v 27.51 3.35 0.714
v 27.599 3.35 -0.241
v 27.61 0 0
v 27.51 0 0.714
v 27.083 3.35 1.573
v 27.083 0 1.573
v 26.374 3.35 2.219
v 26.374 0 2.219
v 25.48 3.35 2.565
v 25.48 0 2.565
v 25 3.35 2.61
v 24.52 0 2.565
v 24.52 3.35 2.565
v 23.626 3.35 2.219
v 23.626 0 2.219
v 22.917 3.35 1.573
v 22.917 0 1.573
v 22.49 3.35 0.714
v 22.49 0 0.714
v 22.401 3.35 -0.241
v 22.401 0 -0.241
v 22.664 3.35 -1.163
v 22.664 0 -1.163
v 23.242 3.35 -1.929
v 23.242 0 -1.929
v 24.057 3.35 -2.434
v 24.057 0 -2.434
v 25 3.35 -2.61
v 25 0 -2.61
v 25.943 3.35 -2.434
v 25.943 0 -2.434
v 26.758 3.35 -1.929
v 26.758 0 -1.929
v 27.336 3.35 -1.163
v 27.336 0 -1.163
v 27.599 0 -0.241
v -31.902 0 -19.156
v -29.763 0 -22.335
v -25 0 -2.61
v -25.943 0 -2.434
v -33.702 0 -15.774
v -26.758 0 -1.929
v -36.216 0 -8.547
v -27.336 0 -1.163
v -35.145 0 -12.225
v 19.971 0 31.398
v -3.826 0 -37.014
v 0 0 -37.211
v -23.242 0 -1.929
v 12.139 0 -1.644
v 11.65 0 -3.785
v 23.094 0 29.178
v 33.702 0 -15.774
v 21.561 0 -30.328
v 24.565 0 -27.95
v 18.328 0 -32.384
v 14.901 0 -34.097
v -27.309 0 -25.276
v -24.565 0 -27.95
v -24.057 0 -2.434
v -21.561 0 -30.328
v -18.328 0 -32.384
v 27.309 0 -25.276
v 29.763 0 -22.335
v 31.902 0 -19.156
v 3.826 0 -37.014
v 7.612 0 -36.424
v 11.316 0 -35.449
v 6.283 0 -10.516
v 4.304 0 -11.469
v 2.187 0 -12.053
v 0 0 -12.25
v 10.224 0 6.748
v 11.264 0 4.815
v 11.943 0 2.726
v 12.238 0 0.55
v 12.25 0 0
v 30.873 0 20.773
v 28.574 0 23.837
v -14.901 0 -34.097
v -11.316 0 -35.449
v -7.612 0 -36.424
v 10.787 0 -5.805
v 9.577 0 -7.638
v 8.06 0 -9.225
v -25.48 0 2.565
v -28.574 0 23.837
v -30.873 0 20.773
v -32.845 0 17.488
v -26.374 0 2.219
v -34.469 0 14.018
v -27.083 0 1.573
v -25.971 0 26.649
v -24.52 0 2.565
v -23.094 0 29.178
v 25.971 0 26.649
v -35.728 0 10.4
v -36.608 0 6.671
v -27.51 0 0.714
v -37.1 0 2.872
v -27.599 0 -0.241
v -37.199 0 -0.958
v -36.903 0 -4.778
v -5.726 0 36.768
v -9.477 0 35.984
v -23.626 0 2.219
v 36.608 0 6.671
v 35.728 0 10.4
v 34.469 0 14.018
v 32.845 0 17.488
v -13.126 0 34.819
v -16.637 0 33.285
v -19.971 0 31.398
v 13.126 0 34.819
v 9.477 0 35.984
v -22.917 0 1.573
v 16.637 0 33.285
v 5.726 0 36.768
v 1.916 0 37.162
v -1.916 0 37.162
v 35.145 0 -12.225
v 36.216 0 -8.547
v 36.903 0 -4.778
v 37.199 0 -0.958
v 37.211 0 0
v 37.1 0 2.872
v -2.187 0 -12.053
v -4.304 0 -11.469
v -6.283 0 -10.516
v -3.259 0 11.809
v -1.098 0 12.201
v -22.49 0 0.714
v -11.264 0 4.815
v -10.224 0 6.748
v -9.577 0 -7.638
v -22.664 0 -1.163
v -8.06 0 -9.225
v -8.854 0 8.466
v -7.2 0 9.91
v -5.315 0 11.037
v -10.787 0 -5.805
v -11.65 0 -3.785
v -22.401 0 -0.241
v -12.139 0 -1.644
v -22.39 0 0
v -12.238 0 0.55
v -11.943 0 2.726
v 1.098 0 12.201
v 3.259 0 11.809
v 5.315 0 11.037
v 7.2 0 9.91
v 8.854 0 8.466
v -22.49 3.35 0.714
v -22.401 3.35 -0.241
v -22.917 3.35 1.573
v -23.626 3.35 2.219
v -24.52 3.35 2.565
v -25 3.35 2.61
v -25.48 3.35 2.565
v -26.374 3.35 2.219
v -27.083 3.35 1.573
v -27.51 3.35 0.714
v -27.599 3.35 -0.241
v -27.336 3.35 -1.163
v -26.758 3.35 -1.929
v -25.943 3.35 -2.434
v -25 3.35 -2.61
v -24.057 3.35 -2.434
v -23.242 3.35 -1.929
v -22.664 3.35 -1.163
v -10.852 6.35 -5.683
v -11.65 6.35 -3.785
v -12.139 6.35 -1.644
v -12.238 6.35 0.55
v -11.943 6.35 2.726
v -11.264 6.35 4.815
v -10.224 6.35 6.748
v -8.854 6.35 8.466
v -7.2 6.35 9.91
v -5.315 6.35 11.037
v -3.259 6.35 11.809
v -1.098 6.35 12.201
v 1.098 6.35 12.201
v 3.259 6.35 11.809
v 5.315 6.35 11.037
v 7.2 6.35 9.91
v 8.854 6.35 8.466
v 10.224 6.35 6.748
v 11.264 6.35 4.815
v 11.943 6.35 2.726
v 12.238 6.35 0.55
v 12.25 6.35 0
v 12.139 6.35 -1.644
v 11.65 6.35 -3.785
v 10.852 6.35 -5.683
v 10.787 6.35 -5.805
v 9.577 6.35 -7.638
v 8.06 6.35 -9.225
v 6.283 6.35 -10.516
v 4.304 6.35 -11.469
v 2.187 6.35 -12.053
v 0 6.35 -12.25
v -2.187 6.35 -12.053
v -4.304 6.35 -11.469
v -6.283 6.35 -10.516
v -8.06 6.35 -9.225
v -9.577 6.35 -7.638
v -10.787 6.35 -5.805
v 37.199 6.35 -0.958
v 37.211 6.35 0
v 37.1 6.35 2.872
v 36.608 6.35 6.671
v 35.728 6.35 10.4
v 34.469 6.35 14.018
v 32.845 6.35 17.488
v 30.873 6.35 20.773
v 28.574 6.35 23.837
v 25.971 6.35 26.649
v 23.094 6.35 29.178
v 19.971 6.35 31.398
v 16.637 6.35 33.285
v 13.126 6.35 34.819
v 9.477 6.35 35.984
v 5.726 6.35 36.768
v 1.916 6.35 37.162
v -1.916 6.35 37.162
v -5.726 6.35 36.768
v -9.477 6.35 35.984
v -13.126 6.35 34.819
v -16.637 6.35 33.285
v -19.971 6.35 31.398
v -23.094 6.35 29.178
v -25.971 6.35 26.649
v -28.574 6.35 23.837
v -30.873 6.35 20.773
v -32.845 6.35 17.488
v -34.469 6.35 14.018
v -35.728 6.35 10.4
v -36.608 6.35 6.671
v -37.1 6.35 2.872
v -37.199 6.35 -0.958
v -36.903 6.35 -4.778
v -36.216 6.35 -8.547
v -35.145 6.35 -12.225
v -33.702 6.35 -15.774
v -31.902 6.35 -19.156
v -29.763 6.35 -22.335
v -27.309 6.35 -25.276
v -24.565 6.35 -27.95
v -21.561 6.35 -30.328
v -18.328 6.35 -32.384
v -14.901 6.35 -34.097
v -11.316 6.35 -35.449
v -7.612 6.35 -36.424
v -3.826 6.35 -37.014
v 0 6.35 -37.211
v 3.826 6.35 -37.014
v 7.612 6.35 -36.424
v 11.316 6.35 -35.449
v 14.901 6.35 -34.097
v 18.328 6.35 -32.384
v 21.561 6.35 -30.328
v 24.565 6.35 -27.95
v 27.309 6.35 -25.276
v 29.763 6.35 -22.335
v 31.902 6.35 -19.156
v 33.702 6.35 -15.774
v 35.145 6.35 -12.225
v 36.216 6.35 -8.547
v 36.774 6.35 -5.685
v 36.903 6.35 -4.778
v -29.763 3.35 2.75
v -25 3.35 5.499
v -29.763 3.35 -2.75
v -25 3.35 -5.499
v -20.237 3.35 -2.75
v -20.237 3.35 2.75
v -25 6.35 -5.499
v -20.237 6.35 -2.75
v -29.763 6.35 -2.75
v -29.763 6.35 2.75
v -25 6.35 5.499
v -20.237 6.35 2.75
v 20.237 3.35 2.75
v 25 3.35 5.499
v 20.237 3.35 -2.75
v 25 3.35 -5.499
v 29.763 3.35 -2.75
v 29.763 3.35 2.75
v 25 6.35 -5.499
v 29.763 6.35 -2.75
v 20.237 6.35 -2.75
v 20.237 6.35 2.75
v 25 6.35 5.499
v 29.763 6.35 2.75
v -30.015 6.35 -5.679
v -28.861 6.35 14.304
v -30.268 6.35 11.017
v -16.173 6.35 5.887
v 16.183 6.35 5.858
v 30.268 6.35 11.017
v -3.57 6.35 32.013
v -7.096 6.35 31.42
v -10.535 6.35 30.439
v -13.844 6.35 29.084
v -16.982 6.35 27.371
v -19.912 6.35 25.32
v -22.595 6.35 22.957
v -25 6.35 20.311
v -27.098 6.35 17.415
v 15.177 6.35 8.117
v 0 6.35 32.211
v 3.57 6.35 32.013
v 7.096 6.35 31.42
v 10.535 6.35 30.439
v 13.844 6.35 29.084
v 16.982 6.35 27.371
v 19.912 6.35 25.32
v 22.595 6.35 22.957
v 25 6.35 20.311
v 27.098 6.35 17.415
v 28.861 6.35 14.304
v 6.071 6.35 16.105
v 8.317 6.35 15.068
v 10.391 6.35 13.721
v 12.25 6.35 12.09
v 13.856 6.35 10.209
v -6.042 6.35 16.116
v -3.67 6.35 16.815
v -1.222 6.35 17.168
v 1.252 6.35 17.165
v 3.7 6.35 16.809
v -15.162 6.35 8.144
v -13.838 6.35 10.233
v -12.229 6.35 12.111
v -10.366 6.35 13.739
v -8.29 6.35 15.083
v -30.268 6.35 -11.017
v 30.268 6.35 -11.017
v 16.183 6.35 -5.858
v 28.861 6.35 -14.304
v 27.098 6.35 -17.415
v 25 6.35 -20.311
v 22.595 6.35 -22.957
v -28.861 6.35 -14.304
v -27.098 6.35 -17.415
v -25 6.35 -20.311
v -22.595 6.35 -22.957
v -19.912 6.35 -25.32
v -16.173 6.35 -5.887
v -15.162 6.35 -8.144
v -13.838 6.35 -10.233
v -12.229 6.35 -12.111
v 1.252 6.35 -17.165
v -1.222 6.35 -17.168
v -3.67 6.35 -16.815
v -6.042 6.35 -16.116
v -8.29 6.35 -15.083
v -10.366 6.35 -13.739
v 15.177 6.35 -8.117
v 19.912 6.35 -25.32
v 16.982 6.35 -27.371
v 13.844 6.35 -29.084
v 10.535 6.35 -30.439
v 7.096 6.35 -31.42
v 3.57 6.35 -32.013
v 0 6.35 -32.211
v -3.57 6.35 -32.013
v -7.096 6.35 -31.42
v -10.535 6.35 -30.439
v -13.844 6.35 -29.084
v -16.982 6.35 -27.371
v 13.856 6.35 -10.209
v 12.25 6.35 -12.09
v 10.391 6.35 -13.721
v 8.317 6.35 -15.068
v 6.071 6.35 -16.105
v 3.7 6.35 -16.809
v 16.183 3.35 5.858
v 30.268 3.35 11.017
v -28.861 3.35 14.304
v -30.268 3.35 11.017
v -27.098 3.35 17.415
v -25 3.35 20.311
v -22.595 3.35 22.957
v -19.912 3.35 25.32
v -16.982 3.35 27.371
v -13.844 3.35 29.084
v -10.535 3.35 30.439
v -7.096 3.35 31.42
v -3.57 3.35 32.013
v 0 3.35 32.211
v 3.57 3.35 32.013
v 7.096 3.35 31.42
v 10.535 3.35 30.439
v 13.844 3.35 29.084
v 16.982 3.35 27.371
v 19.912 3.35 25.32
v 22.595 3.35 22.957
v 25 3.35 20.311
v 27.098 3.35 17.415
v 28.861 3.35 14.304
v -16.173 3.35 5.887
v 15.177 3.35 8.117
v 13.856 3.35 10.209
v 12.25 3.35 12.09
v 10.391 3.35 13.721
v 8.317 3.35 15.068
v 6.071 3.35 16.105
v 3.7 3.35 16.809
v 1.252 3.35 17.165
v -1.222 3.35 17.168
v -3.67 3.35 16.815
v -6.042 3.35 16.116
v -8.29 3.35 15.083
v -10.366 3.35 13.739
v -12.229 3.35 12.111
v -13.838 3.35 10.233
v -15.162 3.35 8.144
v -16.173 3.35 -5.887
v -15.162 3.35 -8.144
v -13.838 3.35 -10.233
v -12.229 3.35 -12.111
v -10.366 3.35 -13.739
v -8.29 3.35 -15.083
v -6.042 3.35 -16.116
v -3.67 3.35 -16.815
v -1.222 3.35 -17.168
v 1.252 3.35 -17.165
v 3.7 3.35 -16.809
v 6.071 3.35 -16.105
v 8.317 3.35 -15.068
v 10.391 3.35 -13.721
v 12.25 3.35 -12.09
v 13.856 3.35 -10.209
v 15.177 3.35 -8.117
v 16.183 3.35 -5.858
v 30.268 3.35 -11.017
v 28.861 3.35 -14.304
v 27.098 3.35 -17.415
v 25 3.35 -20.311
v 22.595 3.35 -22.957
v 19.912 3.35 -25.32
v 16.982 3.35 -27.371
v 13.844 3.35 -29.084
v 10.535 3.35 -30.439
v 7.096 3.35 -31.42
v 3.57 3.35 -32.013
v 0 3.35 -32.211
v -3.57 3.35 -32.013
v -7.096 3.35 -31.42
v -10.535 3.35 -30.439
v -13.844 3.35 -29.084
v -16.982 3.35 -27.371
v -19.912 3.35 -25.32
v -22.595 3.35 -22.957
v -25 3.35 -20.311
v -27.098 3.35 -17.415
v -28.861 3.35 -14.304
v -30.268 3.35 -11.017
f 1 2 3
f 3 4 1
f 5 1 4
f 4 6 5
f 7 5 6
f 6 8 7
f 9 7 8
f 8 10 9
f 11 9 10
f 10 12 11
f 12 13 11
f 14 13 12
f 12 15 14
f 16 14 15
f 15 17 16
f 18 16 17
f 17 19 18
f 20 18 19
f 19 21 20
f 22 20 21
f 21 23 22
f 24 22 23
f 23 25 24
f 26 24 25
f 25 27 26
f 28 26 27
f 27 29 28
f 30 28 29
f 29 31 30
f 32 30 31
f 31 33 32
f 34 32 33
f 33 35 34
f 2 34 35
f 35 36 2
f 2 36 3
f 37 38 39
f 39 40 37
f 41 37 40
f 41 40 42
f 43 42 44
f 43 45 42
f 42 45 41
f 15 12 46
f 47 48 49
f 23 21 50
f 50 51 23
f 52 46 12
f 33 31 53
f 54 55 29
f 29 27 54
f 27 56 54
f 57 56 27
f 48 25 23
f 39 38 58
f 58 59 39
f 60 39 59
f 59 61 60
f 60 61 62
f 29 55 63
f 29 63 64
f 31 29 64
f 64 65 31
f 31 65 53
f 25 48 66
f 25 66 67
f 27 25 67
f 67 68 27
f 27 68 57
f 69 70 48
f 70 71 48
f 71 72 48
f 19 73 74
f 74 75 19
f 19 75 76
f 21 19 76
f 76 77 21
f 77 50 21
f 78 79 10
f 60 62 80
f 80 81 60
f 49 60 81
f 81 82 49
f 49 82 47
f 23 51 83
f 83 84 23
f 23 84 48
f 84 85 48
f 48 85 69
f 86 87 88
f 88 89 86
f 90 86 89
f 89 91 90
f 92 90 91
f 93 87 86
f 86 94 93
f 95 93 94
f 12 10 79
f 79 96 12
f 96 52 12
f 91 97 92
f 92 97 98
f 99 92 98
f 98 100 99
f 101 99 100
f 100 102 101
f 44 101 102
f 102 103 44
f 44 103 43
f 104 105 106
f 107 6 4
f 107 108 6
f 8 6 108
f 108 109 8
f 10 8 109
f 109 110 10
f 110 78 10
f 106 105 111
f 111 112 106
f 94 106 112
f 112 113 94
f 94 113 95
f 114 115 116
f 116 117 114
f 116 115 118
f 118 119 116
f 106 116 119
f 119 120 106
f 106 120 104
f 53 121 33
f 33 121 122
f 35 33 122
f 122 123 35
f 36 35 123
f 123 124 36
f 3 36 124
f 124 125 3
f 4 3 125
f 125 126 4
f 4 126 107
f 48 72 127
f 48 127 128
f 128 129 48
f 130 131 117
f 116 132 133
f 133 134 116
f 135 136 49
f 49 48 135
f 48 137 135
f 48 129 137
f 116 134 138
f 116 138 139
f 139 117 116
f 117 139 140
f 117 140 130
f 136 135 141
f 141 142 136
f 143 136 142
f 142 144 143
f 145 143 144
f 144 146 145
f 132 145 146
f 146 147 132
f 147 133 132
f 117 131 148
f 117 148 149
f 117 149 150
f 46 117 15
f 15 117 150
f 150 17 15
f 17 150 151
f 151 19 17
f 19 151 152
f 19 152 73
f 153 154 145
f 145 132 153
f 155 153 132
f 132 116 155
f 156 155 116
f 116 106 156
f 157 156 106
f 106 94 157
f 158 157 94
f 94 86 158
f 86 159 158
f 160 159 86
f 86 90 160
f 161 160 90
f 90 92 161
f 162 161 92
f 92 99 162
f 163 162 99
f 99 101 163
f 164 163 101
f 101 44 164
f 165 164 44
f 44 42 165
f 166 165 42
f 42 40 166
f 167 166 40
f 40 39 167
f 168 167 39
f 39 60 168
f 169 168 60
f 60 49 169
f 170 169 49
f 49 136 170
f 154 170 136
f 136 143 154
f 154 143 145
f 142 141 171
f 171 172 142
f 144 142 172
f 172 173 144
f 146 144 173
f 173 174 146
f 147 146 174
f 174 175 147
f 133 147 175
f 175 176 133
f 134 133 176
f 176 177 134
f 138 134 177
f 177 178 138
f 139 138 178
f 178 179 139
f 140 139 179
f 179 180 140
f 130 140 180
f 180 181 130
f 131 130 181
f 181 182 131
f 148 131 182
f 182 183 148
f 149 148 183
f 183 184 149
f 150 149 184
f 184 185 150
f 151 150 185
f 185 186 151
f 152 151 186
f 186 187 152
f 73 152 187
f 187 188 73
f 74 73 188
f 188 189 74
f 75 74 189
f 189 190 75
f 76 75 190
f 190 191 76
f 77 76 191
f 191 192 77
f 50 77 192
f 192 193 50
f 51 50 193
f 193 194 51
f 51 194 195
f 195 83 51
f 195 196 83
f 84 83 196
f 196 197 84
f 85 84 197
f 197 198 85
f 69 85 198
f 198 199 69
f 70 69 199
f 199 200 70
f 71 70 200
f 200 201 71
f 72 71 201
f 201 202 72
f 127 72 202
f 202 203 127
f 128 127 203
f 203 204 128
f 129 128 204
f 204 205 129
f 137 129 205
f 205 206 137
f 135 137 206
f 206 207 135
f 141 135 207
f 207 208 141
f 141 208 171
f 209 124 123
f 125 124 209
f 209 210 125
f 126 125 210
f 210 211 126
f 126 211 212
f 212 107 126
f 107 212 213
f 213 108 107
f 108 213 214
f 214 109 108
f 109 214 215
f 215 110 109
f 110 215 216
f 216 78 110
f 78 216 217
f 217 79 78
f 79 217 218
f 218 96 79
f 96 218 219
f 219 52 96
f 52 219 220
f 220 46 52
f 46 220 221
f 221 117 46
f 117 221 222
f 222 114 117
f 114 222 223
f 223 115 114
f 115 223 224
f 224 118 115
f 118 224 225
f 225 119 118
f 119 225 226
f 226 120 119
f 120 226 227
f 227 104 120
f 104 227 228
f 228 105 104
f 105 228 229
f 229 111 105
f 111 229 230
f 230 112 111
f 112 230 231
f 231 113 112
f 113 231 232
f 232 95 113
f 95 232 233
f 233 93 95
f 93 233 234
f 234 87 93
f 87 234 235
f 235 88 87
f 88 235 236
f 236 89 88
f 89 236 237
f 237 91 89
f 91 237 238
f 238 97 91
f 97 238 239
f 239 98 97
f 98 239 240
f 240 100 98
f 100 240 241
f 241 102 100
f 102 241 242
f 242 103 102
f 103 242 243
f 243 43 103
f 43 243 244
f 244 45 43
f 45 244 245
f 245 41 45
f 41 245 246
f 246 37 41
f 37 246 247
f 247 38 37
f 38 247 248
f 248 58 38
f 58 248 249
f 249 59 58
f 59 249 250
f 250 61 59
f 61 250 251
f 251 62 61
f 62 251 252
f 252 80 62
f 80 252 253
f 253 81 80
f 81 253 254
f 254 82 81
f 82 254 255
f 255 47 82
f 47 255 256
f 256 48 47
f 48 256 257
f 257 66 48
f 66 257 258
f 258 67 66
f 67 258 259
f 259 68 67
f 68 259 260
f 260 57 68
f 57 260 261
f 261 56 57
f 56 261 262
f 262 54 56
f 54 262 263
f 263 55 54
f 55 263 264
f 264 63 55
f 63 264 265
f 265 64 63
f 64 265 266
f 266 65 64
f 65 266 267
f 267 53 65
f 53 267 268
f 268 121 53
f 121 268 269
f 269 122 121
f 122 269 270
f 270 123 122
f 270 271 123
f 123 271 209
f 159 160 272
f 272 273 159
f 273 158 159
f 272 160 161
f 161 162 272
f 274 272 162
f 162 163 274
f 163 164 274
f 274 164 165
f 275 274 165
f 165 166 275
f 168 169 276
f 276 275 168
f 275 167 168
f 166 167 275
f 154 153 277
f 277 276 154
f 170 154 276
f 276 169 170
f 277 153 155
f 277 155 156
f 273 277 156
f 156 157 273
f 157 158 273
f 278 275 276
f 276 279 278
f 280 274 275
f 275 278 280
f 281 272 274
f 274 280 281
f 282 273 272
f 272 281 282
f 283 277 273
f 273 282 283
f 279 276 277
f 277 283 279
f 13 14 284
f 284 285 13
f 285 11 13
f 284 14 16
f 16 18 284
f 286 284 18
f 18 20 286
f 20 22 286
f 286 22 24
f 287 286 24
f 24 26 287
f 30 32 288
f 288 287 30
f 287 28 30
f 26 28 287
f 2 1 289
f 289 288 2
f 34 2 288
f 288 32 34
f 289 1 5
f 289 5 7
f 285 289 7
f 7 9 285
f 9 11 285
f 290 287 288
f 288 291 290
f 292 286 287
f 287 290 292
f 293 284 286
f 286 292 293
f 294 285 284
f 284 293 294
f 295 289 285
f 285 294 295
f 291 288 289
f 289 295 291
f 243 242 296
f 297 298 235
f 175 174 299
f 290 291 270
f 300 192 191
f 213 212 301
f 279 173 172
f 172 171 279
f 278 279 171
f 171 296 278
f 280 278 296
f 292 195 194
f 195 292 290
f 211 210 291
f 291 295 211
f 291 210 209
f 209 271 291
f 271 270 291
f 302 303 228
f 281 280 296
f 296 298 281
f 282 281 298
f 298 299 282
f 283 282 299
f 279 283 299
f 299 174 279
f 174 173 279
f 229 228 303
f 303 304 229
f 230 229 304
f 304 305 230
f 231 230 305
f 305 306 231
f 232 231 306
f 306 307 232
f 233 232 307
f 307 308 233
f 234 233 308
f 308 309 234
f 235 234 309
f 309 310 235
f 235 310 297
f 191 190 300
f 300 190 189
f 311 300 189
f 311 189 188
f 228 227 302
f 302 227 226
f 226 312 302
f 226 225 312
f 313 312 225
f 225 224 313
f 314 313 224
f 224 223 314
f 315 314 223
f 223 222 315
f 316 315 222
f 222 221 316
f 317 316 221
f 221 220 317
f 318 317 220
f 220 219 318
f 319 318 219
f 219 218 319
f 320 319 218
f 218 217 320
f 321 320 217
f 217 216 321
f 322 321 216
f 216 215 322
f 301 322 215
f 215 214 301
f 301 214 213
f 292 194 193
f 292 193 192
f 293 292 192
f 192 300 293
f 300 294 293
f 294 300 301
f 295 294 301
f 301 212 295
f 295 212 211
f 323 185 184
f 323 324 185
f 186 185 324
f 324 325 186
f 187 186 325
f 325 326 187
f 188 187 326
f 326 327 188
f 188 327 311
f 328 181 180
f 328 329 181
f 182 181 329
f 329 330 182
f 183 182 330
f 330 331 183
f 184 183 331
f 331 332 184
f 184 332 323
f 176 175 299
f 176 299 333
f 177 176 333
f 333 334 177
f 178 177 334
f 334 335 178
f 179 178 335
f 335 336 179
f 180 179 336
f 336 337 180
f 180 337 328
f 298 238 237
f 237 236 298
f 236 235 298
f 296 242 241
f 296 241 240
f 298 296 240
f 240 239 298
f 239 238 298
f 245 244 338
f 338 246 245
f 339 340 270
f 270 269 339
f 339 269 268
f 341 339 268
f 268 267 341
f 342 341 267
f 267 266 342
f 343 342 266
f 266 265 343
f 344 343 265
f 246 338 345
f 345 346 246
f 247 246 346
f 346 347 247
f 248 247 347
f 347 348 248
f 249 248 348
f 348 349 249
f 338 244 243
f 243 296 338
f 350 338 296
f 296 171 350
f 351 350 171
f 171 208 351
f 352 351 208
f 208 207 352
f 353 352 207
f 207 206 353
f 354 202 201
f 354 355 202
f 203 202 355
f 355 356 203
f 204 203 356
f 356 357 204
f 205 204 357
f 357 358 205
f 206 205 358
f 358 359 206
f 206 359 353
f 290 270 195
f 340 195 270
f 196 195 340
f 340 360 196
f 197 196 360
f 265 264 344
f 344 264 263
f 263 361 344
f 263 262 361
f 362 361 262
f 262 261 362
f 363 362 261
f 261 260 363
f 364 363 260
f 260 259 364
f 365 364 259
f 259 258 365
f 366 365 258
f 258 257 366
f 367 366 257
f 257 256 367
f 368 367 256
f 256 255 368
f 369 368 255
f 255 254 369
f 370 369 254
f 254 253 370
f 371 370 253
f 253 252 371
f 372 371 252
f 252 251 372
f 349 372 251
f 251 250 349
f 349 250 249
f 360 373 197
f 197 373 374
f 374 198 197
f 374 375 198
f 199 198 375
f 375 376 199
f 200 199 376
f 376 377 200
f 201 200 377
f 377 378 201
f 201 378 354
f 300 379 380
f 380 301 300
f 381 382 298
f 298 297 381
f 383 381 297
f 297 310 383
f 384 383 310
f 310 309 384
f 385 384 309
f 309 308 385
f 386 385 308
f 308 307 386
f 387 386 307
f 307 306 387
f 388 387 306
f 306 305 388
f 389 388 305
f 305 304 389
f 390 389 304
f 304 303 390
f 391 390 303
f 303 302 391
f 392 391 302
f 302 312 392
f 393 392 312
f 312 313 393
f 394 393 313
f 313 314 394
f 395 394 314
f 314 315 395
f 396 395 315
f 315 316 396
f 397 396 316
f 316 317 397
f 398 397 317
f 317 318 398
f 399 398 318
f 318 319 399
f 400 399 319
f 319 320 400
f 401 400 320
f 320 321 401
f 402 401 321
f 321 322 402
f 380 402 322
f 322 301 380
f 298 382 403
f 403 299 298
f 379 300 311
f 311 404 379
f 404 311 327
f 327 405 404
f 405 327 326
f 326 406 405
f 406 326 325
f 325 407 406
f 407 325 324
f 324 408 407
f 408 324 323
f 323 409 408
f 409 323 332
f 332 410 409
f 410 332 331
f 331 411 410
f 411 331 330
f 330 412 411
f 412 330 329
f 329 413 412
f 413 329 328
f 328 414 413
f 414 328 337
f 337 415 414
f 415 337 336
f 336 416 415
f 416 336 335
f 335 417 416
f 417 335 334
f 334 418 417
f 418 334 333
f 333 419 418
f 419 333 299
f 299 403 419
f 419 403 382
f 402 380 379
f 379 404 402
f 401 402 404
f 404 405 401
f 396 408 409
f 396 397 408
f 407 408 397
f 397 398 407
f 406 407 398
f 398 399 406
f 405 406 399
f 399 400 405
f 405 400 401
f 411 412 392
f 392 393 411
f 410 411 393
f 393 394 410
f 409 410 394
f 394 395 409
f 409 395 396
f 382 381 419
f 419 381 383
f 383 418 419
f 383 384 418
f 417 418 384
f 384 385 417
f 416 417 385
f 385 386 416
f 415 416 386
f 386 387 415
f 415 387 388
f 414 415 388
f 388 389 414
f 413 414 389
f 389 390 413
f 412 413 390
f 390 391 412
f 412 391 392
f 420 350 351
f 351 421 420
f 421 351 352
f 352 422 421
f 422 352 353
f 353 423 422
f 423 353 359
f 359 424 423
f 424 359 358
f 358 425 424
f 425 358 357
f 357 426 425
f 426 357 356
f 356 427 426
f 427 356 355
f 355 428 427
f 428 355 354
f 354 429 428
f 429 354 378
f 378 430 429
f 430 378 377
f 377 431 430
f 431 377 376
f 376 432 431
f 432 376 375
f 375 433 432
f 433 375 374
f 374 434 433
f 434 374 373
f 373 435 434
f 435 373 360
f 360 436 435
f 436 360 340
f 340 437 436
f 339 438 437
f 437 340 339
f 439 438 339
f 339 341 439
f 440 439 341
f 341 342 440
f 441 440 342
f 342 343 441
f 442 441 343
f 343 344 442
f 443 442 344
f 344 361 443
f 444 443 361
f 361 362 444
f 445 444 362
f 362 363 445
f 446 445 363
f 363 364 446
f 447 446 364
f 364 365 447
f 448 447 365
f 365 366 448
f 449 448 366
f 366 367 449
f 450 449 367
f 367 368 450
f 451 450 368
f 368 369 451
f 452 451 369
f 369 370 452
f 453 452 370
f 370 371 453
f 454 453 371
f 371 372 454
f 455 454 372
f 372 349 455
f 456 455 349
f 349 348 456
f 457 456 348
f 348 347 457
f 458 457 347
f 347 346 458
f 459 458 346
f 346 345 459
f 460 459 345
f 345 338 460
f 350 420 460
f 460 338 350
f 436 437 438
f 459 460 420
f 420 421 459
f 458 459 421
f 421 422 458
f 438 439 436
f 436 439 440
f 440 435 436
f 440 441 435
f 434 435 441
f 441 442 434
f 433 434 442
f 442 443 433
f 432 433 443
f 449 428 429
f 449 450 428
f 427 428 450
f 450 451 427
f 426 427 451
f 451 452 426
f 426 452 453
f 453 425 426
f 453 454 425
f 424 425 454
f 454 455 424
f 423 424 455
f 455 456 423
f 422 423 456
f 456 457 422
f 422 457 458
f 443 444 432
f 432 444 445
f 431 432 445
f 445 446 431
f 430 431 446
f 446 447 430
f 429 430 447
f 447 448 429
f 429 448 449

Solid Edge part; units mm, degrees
sketch "Sketch1" plane through (0, 0, 0) normal (0, -1, 0) x (1, 0, 0)
  circle A0 centre (0, 0) radius 37.211
  circle A1 centre (0, 0) radius 12.25
  dimension "D1" = 74.422
  dimension "D2" = 24.5
extrude "Protrusion1" add sketch "Sketch1" against normal blind 6.35
extrude "Cutout1" [suppressed]
pattern "Pattern1" [suppressed]
hole "Hole_1" at (25, 0, 0) direction (0, 1, 0) diameter 5.2197 end up to next
hole "Hole1" at (-25, 0, 0) direction (0, 1, 0) diameter 5.2197 end up to next
sketch "Sketch2" plane through (0, 6.35, 0) normal (0, 1, 0) x (-1, 0, 0)
  line L0 (25, -5.4993) -> (29.7625, -2.7496)
  line L1 (29.7625, -2.7496) -> (29.7625, 2.7496)
  line L2 (29.7625, 2.7496) -> (25, 5.4993)
  line L3 (25, 5.4993) -> (20.2375, 2.7496)
  line L4 (20.2375, 2.7496) -> (20.2375, -2.7496)
  line L5 (20.2375, -2.7496) -> (25, -5.4993)
  line L6 (-25, -5.4993) -> (-20.2375, -2.7496)
  line L7 (-20.2375, -2.7496) -> (-20.2375, 2.7496)
  line L8 (-20.2375, 2.7496) -> (-25, 5.4993)
  line L9 (-25, 5.4993) -> (-29.7625, 2.7496)
  line L10 (-29.7625, 2.7496) -> (-29.7625, -2.7496)
  line L11 (-29.7625, -2.7496) -> (-25, -5.4993)
  dimension "D1" = 9.525
  dimension "D2" = 9.525
extrude "ExtrudedCutout_2" cut sketch "Sketch2" against normal blind 3
sketch "Sketch3" plane through (0, 6.35, 0) normal (0, 1, 0) x (-1, 0, 0)
  arc A0 (-30.2684, 11.0168) -> (30.2684, 11.0168) centre (0, 0) cw
  line L0 (16.173, 5.8865) -> (30.2684, 11.0168)
  line L1 (-16.1835, 5.8579) -> (-30.2684, 11.0168)
  arc A1 (-16.1834, 5.8579) -> (16.173, 5.8865) centre (0, 0) cw
  line L2 (-16.1835, -5.8579) -> (-30.2684, -11.0168)
  line L3 (16.173, -5.8865) -> (30.2684, -11.0168)
  arc A2 (16.173, -5.8865) -> (-16.1835, -5.8579) centre (0, 0) cw
  arc A3 (30.2684, -11.0168) -> (-30.2684, -11.0168) centre (0, 0) cw
extrude "ExtrudedCutout_3" cut sketch "Sketch3" against normal blind 3
